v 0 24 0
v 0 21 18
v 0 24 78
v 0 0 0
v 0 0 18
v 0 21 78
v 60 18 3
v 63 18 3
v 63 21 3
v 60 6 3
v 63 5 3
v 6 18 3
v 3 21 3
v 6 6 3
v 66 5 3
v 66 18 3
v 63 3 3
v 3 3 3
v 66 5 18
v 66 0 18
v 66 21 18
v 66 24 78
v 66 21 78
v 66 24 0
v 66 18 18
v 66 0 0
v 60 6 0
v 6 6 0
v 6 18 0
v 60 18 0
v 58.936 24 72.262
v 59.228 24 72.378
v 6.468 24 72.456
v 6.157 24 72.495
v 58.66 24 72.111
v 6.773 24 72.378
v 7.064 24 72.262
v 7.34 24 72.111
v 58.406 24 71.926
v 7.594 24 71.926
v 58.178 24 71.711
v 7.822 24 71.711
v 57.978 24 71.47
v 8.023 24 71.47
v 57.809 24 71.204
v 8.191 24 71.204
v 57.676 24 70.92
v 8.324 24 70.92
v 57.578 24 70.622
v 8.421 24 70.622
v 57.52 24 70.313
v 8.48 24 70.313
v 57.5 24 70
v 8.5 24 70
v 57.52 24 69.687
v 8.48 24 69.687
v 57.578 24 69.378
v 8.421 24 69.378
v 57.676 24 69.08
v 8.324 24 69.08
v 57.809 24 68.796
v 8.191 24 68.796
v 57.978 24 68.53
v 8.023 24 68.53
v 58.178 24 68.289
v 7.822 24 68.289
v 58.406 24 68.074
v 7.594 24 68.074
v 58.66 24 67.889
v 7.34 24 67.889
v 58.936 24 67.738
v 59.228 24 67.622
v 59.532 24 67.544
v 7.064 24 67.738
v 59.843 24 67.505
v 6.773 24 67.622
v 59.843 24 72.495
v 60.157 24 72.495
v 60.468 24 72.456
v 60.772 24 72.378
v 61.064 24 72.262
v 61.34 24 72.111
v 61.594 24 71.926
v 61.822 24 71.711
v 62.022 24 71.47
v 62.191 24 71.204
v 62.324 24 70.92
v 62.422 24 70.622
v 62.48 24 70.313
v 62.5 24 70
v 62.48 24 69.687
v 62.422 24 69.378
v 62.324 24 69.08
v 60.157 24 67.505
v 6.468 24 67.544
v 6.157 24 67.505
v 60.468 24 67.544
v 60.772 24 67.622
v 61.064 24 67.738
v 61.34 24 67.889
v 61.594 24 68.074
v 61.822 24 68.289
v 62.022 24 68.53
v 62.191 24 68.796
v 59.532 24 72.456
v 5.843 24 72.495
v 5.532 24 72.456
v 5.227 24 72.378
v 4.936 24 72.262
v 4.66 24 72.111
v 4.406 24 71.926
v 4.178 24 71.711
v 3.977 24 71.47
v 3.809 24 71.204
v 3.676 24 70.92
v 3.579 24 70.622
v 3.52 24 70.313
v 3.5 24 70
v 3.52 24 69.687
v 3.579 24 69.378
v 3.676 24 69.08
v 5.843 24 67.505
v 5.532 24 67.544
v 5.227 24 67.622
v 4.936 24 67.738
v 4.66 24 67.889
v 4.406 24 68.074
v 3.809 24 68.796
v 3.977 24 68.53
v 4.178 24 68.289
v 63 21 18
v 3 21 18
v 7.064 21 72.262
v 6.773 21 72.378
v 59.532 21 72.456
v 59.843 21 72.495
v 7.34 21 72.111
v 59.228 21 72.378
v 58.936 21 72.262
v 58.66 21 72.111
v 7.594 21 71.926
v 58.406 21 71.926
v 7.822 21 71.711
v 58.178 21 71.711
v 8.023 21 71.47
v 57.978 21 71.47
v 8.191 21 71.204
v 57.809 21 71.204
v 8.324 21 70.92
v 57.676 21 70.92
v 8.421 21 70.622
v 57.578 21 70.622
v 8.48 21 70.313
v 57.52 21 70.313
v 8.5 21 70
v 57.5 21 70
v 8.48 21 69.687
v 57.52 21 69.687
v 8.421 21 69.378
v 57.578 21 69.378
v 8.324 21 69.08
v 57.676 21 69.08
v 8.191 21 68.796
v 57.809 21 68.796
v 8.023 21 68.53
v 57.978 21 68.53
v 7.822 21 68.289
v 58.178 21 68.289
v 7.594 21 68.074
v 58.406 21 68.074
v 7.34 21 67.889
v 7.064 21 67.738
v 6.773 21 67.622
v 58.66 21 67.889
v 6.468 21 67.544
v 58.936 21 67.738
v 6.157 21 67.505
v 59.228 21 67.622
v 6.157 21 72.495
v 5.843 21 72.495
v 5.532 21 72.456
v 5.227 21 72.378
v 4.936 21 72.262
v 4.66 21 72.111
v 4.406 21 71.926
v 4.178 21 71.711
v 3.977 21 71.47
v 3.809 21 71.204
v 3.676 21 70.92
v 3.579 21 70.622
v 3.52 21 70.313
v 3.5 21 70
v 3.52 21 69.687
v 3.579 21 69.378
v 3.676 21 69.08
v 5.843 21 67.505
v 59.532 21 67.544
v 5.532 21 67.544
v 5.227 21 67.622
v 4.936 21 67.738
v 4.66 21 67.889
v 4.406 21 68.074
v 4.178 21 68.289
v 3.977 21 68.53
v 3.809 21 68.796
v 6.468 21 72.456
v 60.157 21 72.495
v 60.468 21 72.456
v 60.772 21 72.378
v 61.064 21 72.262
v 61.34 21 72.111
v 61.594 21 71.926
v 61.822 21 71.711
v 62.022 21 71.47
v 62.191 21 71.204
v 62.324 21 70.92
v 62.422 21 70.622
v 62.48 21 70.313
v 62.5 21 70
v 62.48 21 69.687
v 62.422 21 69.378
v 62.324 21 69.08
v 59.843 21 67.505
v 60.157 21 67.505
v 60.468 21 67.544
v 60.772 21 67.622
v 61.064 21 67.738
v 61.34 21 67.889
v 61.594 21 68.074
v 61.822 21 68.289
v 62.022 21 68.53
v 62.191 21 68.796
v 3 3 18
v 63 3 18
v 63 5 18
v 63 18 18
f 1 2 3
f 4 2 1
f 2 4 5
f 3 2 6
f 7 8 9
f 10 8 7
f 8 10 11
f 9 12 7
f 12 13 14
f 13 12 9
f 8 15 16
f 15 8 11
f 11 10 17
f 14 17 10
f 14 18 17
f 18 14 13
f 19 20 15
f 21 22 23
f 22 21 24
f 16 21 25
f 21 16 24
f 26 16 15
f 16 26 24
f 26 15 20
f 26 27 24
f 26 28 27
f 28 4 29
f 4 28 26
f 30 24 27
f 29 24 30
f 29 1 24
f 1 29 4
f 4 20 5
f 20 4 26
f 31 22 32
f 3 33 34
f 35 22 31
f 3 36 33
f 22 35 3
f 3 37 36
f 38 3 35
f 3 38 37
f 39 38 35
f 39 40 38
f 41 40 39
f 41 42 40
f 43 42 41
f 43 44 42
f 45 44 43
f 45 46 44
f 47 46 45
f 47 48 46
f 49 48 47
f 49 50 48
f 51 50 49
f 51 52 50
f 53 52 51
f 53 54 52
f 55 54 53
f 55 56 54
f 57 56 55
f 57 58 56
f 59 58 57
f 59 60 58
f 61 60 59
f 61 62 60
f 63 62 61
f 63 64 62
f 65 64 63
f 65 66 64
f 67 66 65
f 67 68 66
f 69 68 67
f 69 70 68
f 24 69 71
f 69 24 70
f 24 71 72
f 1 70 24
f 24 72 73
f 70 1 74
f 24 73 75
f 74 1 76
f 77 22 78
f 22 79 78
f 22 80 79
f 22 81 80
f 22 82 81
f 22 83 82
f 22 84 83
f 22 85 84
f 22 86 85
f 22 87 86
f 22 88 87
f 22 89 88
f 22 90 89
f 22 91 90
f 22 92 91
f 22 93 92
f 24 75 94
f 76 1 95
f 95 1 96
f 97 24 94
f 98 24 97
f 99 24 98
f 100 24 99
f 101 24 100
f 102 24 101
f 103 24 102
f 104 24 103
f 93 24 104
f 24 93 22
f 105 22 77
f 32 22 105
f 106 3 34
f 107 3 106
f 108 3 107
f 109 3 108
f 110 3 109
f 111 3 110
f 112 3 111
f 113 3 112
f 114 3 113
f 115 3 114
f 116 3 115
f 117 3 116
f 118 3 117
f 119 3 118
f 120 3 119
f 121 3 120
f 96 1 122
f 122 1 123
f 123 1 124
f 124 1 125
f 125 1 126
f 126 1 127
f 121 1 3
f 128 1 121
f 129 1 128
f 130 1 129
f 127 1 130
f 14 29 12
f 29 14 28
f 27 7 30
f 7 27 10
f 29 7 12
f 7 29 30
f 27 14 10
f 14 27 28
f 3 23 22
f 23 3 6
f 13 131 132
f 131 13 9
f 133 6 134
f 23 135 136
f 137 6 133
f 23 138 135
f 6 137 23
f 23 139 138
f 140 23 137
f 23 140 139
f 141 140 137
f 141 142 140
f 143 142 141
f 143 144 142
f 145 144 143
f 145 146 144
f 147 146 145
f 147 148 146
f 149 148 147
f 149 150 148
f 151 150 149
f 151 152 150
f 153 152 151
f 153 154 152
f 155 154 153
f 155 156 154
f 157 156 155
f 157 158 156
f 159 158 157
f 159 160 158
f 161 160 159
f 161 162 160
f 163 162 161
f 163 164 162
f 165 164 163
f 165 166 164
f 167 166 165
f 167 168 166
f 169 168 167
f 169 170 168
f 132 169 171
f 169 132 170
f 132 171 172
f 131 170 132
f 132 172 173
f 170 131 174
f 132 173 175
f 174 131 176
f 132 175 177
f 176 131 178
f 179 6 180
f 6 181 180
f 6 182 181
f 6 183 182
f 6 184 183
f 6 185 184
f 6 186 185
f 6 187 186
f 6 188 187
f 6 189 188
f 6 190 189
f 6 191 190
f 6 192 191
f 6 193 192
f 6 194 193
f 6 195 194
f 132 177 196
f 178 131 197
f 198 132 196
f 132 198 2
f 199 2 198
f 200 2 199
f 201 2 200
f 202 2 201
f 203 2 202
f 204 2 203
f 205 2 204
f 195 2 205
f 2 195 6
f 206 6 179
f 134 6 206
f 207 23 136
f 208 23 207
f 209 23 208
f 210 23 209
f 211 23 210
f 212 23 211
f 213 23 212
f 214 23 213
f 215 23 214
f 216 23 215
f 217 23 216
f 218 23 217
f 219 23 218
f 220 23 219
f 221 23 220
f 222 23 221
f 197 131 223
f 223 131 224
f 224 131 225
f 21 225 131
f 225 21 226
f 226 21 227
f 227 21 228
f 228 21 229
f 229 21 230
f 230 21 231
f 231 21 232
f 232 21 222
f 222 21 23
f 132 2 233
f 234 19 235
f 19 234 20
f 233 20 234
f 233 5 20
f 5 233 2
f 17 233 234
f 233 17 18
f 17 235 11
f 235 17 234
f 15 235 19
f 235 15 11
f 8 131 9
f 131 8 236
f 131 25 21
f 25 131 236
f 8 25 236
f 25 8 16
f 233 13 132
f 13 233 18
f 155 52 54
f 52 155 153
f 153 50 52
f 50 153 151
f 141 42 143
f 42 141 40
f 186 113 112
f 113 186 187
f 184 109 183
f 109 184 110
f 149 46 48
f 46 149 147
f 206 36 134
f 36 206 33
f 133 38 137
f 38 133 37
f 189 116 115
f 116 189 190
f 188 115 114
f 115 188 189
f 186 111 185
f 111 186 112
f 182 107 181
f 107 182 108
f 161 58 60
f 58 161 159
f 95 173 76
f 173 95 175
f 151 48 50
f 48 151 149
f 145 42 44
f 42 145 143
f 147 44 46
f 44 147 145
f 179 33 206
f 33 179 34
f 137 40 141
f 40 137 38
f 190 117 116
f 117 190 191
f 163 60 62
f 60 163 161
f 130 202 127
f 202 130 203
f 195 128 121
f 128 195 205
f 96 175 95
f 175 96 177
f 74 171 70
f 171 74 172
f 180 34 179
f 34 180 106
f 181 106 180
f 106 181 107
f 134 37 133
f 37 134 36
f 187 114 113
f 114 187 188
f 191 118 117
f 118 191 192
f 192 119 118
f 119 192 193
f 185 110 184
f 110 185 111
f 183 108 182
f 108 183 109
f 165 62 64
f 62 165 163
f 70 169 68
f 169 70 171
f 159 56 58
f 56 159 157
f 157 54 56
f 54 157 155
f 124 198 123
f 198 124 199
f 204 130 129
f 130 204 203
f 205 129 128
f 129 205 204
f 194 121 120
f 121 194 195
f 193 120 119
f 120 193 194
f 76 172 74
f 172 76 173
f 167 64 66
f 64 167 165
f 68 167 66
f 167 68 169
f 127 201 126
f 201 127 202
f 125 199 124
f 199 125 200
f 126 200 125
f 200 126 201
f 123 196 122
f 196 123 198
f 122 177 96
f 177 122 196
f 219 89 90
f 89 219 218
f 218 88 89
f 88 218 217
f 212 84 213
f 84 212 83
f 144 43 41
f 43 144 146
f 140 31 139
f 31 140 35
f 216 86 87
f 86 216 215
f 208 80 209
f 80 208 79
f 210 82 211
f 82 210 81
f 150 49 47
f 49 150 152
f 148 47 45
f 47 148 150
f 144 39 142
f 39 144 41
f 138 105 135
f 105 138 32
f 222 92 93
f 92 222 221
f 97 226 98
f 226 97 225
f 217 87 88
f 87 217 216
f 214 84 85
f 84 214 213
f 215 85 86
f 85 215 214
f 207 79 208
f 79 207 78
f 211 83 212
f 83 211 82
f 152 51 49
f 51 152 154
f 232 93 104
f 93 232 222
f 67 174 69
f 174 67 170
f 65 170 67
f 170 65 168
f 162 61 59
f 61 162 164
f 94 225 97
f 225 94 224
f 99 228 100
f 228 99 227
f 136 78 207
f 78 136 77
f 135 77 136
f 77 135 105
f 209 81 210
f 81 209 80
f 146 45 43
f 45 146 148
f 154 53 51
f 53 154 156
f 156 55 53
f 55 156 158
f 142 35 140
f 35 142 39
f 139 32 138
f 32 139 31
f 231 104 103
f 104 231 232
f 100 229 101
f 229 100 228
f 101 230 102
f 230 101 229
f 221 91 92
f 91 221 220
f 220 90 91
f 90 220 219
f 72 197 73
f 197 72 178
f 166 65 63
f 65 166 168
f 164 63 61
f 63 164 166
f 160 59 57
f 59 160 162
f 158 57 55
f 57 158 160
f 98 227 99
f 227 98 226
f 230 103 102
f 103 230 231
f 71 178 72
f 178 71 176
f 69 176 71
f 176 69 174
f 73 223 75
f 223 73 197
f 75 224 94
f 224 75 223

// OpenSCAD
$fn=50;
difference () {
  cube([66,24,3]);
  translate([6,6,0])
    cube([66-12,24-12,3]);
}
difference(){
union() {
 translate([0,24-3,3])
  cube([66,3,75]);
 translate([0,0,3])
  cube([66,3,15]);
 translate([66-3,3,3])
  cube([3,2,15]);
 translate([66-3,18,3])
  cube([3,3,15]);
 translate([0,0,3])
  cube([3,24,15]);
}
translate([6,24,70])
 rotate(a=[90,0,0])
  cylinder(d=5,h=3);
translate([60,24,70])
 rotate(a=[90,0,0])
  cylinder(d=5,h=3);


}
